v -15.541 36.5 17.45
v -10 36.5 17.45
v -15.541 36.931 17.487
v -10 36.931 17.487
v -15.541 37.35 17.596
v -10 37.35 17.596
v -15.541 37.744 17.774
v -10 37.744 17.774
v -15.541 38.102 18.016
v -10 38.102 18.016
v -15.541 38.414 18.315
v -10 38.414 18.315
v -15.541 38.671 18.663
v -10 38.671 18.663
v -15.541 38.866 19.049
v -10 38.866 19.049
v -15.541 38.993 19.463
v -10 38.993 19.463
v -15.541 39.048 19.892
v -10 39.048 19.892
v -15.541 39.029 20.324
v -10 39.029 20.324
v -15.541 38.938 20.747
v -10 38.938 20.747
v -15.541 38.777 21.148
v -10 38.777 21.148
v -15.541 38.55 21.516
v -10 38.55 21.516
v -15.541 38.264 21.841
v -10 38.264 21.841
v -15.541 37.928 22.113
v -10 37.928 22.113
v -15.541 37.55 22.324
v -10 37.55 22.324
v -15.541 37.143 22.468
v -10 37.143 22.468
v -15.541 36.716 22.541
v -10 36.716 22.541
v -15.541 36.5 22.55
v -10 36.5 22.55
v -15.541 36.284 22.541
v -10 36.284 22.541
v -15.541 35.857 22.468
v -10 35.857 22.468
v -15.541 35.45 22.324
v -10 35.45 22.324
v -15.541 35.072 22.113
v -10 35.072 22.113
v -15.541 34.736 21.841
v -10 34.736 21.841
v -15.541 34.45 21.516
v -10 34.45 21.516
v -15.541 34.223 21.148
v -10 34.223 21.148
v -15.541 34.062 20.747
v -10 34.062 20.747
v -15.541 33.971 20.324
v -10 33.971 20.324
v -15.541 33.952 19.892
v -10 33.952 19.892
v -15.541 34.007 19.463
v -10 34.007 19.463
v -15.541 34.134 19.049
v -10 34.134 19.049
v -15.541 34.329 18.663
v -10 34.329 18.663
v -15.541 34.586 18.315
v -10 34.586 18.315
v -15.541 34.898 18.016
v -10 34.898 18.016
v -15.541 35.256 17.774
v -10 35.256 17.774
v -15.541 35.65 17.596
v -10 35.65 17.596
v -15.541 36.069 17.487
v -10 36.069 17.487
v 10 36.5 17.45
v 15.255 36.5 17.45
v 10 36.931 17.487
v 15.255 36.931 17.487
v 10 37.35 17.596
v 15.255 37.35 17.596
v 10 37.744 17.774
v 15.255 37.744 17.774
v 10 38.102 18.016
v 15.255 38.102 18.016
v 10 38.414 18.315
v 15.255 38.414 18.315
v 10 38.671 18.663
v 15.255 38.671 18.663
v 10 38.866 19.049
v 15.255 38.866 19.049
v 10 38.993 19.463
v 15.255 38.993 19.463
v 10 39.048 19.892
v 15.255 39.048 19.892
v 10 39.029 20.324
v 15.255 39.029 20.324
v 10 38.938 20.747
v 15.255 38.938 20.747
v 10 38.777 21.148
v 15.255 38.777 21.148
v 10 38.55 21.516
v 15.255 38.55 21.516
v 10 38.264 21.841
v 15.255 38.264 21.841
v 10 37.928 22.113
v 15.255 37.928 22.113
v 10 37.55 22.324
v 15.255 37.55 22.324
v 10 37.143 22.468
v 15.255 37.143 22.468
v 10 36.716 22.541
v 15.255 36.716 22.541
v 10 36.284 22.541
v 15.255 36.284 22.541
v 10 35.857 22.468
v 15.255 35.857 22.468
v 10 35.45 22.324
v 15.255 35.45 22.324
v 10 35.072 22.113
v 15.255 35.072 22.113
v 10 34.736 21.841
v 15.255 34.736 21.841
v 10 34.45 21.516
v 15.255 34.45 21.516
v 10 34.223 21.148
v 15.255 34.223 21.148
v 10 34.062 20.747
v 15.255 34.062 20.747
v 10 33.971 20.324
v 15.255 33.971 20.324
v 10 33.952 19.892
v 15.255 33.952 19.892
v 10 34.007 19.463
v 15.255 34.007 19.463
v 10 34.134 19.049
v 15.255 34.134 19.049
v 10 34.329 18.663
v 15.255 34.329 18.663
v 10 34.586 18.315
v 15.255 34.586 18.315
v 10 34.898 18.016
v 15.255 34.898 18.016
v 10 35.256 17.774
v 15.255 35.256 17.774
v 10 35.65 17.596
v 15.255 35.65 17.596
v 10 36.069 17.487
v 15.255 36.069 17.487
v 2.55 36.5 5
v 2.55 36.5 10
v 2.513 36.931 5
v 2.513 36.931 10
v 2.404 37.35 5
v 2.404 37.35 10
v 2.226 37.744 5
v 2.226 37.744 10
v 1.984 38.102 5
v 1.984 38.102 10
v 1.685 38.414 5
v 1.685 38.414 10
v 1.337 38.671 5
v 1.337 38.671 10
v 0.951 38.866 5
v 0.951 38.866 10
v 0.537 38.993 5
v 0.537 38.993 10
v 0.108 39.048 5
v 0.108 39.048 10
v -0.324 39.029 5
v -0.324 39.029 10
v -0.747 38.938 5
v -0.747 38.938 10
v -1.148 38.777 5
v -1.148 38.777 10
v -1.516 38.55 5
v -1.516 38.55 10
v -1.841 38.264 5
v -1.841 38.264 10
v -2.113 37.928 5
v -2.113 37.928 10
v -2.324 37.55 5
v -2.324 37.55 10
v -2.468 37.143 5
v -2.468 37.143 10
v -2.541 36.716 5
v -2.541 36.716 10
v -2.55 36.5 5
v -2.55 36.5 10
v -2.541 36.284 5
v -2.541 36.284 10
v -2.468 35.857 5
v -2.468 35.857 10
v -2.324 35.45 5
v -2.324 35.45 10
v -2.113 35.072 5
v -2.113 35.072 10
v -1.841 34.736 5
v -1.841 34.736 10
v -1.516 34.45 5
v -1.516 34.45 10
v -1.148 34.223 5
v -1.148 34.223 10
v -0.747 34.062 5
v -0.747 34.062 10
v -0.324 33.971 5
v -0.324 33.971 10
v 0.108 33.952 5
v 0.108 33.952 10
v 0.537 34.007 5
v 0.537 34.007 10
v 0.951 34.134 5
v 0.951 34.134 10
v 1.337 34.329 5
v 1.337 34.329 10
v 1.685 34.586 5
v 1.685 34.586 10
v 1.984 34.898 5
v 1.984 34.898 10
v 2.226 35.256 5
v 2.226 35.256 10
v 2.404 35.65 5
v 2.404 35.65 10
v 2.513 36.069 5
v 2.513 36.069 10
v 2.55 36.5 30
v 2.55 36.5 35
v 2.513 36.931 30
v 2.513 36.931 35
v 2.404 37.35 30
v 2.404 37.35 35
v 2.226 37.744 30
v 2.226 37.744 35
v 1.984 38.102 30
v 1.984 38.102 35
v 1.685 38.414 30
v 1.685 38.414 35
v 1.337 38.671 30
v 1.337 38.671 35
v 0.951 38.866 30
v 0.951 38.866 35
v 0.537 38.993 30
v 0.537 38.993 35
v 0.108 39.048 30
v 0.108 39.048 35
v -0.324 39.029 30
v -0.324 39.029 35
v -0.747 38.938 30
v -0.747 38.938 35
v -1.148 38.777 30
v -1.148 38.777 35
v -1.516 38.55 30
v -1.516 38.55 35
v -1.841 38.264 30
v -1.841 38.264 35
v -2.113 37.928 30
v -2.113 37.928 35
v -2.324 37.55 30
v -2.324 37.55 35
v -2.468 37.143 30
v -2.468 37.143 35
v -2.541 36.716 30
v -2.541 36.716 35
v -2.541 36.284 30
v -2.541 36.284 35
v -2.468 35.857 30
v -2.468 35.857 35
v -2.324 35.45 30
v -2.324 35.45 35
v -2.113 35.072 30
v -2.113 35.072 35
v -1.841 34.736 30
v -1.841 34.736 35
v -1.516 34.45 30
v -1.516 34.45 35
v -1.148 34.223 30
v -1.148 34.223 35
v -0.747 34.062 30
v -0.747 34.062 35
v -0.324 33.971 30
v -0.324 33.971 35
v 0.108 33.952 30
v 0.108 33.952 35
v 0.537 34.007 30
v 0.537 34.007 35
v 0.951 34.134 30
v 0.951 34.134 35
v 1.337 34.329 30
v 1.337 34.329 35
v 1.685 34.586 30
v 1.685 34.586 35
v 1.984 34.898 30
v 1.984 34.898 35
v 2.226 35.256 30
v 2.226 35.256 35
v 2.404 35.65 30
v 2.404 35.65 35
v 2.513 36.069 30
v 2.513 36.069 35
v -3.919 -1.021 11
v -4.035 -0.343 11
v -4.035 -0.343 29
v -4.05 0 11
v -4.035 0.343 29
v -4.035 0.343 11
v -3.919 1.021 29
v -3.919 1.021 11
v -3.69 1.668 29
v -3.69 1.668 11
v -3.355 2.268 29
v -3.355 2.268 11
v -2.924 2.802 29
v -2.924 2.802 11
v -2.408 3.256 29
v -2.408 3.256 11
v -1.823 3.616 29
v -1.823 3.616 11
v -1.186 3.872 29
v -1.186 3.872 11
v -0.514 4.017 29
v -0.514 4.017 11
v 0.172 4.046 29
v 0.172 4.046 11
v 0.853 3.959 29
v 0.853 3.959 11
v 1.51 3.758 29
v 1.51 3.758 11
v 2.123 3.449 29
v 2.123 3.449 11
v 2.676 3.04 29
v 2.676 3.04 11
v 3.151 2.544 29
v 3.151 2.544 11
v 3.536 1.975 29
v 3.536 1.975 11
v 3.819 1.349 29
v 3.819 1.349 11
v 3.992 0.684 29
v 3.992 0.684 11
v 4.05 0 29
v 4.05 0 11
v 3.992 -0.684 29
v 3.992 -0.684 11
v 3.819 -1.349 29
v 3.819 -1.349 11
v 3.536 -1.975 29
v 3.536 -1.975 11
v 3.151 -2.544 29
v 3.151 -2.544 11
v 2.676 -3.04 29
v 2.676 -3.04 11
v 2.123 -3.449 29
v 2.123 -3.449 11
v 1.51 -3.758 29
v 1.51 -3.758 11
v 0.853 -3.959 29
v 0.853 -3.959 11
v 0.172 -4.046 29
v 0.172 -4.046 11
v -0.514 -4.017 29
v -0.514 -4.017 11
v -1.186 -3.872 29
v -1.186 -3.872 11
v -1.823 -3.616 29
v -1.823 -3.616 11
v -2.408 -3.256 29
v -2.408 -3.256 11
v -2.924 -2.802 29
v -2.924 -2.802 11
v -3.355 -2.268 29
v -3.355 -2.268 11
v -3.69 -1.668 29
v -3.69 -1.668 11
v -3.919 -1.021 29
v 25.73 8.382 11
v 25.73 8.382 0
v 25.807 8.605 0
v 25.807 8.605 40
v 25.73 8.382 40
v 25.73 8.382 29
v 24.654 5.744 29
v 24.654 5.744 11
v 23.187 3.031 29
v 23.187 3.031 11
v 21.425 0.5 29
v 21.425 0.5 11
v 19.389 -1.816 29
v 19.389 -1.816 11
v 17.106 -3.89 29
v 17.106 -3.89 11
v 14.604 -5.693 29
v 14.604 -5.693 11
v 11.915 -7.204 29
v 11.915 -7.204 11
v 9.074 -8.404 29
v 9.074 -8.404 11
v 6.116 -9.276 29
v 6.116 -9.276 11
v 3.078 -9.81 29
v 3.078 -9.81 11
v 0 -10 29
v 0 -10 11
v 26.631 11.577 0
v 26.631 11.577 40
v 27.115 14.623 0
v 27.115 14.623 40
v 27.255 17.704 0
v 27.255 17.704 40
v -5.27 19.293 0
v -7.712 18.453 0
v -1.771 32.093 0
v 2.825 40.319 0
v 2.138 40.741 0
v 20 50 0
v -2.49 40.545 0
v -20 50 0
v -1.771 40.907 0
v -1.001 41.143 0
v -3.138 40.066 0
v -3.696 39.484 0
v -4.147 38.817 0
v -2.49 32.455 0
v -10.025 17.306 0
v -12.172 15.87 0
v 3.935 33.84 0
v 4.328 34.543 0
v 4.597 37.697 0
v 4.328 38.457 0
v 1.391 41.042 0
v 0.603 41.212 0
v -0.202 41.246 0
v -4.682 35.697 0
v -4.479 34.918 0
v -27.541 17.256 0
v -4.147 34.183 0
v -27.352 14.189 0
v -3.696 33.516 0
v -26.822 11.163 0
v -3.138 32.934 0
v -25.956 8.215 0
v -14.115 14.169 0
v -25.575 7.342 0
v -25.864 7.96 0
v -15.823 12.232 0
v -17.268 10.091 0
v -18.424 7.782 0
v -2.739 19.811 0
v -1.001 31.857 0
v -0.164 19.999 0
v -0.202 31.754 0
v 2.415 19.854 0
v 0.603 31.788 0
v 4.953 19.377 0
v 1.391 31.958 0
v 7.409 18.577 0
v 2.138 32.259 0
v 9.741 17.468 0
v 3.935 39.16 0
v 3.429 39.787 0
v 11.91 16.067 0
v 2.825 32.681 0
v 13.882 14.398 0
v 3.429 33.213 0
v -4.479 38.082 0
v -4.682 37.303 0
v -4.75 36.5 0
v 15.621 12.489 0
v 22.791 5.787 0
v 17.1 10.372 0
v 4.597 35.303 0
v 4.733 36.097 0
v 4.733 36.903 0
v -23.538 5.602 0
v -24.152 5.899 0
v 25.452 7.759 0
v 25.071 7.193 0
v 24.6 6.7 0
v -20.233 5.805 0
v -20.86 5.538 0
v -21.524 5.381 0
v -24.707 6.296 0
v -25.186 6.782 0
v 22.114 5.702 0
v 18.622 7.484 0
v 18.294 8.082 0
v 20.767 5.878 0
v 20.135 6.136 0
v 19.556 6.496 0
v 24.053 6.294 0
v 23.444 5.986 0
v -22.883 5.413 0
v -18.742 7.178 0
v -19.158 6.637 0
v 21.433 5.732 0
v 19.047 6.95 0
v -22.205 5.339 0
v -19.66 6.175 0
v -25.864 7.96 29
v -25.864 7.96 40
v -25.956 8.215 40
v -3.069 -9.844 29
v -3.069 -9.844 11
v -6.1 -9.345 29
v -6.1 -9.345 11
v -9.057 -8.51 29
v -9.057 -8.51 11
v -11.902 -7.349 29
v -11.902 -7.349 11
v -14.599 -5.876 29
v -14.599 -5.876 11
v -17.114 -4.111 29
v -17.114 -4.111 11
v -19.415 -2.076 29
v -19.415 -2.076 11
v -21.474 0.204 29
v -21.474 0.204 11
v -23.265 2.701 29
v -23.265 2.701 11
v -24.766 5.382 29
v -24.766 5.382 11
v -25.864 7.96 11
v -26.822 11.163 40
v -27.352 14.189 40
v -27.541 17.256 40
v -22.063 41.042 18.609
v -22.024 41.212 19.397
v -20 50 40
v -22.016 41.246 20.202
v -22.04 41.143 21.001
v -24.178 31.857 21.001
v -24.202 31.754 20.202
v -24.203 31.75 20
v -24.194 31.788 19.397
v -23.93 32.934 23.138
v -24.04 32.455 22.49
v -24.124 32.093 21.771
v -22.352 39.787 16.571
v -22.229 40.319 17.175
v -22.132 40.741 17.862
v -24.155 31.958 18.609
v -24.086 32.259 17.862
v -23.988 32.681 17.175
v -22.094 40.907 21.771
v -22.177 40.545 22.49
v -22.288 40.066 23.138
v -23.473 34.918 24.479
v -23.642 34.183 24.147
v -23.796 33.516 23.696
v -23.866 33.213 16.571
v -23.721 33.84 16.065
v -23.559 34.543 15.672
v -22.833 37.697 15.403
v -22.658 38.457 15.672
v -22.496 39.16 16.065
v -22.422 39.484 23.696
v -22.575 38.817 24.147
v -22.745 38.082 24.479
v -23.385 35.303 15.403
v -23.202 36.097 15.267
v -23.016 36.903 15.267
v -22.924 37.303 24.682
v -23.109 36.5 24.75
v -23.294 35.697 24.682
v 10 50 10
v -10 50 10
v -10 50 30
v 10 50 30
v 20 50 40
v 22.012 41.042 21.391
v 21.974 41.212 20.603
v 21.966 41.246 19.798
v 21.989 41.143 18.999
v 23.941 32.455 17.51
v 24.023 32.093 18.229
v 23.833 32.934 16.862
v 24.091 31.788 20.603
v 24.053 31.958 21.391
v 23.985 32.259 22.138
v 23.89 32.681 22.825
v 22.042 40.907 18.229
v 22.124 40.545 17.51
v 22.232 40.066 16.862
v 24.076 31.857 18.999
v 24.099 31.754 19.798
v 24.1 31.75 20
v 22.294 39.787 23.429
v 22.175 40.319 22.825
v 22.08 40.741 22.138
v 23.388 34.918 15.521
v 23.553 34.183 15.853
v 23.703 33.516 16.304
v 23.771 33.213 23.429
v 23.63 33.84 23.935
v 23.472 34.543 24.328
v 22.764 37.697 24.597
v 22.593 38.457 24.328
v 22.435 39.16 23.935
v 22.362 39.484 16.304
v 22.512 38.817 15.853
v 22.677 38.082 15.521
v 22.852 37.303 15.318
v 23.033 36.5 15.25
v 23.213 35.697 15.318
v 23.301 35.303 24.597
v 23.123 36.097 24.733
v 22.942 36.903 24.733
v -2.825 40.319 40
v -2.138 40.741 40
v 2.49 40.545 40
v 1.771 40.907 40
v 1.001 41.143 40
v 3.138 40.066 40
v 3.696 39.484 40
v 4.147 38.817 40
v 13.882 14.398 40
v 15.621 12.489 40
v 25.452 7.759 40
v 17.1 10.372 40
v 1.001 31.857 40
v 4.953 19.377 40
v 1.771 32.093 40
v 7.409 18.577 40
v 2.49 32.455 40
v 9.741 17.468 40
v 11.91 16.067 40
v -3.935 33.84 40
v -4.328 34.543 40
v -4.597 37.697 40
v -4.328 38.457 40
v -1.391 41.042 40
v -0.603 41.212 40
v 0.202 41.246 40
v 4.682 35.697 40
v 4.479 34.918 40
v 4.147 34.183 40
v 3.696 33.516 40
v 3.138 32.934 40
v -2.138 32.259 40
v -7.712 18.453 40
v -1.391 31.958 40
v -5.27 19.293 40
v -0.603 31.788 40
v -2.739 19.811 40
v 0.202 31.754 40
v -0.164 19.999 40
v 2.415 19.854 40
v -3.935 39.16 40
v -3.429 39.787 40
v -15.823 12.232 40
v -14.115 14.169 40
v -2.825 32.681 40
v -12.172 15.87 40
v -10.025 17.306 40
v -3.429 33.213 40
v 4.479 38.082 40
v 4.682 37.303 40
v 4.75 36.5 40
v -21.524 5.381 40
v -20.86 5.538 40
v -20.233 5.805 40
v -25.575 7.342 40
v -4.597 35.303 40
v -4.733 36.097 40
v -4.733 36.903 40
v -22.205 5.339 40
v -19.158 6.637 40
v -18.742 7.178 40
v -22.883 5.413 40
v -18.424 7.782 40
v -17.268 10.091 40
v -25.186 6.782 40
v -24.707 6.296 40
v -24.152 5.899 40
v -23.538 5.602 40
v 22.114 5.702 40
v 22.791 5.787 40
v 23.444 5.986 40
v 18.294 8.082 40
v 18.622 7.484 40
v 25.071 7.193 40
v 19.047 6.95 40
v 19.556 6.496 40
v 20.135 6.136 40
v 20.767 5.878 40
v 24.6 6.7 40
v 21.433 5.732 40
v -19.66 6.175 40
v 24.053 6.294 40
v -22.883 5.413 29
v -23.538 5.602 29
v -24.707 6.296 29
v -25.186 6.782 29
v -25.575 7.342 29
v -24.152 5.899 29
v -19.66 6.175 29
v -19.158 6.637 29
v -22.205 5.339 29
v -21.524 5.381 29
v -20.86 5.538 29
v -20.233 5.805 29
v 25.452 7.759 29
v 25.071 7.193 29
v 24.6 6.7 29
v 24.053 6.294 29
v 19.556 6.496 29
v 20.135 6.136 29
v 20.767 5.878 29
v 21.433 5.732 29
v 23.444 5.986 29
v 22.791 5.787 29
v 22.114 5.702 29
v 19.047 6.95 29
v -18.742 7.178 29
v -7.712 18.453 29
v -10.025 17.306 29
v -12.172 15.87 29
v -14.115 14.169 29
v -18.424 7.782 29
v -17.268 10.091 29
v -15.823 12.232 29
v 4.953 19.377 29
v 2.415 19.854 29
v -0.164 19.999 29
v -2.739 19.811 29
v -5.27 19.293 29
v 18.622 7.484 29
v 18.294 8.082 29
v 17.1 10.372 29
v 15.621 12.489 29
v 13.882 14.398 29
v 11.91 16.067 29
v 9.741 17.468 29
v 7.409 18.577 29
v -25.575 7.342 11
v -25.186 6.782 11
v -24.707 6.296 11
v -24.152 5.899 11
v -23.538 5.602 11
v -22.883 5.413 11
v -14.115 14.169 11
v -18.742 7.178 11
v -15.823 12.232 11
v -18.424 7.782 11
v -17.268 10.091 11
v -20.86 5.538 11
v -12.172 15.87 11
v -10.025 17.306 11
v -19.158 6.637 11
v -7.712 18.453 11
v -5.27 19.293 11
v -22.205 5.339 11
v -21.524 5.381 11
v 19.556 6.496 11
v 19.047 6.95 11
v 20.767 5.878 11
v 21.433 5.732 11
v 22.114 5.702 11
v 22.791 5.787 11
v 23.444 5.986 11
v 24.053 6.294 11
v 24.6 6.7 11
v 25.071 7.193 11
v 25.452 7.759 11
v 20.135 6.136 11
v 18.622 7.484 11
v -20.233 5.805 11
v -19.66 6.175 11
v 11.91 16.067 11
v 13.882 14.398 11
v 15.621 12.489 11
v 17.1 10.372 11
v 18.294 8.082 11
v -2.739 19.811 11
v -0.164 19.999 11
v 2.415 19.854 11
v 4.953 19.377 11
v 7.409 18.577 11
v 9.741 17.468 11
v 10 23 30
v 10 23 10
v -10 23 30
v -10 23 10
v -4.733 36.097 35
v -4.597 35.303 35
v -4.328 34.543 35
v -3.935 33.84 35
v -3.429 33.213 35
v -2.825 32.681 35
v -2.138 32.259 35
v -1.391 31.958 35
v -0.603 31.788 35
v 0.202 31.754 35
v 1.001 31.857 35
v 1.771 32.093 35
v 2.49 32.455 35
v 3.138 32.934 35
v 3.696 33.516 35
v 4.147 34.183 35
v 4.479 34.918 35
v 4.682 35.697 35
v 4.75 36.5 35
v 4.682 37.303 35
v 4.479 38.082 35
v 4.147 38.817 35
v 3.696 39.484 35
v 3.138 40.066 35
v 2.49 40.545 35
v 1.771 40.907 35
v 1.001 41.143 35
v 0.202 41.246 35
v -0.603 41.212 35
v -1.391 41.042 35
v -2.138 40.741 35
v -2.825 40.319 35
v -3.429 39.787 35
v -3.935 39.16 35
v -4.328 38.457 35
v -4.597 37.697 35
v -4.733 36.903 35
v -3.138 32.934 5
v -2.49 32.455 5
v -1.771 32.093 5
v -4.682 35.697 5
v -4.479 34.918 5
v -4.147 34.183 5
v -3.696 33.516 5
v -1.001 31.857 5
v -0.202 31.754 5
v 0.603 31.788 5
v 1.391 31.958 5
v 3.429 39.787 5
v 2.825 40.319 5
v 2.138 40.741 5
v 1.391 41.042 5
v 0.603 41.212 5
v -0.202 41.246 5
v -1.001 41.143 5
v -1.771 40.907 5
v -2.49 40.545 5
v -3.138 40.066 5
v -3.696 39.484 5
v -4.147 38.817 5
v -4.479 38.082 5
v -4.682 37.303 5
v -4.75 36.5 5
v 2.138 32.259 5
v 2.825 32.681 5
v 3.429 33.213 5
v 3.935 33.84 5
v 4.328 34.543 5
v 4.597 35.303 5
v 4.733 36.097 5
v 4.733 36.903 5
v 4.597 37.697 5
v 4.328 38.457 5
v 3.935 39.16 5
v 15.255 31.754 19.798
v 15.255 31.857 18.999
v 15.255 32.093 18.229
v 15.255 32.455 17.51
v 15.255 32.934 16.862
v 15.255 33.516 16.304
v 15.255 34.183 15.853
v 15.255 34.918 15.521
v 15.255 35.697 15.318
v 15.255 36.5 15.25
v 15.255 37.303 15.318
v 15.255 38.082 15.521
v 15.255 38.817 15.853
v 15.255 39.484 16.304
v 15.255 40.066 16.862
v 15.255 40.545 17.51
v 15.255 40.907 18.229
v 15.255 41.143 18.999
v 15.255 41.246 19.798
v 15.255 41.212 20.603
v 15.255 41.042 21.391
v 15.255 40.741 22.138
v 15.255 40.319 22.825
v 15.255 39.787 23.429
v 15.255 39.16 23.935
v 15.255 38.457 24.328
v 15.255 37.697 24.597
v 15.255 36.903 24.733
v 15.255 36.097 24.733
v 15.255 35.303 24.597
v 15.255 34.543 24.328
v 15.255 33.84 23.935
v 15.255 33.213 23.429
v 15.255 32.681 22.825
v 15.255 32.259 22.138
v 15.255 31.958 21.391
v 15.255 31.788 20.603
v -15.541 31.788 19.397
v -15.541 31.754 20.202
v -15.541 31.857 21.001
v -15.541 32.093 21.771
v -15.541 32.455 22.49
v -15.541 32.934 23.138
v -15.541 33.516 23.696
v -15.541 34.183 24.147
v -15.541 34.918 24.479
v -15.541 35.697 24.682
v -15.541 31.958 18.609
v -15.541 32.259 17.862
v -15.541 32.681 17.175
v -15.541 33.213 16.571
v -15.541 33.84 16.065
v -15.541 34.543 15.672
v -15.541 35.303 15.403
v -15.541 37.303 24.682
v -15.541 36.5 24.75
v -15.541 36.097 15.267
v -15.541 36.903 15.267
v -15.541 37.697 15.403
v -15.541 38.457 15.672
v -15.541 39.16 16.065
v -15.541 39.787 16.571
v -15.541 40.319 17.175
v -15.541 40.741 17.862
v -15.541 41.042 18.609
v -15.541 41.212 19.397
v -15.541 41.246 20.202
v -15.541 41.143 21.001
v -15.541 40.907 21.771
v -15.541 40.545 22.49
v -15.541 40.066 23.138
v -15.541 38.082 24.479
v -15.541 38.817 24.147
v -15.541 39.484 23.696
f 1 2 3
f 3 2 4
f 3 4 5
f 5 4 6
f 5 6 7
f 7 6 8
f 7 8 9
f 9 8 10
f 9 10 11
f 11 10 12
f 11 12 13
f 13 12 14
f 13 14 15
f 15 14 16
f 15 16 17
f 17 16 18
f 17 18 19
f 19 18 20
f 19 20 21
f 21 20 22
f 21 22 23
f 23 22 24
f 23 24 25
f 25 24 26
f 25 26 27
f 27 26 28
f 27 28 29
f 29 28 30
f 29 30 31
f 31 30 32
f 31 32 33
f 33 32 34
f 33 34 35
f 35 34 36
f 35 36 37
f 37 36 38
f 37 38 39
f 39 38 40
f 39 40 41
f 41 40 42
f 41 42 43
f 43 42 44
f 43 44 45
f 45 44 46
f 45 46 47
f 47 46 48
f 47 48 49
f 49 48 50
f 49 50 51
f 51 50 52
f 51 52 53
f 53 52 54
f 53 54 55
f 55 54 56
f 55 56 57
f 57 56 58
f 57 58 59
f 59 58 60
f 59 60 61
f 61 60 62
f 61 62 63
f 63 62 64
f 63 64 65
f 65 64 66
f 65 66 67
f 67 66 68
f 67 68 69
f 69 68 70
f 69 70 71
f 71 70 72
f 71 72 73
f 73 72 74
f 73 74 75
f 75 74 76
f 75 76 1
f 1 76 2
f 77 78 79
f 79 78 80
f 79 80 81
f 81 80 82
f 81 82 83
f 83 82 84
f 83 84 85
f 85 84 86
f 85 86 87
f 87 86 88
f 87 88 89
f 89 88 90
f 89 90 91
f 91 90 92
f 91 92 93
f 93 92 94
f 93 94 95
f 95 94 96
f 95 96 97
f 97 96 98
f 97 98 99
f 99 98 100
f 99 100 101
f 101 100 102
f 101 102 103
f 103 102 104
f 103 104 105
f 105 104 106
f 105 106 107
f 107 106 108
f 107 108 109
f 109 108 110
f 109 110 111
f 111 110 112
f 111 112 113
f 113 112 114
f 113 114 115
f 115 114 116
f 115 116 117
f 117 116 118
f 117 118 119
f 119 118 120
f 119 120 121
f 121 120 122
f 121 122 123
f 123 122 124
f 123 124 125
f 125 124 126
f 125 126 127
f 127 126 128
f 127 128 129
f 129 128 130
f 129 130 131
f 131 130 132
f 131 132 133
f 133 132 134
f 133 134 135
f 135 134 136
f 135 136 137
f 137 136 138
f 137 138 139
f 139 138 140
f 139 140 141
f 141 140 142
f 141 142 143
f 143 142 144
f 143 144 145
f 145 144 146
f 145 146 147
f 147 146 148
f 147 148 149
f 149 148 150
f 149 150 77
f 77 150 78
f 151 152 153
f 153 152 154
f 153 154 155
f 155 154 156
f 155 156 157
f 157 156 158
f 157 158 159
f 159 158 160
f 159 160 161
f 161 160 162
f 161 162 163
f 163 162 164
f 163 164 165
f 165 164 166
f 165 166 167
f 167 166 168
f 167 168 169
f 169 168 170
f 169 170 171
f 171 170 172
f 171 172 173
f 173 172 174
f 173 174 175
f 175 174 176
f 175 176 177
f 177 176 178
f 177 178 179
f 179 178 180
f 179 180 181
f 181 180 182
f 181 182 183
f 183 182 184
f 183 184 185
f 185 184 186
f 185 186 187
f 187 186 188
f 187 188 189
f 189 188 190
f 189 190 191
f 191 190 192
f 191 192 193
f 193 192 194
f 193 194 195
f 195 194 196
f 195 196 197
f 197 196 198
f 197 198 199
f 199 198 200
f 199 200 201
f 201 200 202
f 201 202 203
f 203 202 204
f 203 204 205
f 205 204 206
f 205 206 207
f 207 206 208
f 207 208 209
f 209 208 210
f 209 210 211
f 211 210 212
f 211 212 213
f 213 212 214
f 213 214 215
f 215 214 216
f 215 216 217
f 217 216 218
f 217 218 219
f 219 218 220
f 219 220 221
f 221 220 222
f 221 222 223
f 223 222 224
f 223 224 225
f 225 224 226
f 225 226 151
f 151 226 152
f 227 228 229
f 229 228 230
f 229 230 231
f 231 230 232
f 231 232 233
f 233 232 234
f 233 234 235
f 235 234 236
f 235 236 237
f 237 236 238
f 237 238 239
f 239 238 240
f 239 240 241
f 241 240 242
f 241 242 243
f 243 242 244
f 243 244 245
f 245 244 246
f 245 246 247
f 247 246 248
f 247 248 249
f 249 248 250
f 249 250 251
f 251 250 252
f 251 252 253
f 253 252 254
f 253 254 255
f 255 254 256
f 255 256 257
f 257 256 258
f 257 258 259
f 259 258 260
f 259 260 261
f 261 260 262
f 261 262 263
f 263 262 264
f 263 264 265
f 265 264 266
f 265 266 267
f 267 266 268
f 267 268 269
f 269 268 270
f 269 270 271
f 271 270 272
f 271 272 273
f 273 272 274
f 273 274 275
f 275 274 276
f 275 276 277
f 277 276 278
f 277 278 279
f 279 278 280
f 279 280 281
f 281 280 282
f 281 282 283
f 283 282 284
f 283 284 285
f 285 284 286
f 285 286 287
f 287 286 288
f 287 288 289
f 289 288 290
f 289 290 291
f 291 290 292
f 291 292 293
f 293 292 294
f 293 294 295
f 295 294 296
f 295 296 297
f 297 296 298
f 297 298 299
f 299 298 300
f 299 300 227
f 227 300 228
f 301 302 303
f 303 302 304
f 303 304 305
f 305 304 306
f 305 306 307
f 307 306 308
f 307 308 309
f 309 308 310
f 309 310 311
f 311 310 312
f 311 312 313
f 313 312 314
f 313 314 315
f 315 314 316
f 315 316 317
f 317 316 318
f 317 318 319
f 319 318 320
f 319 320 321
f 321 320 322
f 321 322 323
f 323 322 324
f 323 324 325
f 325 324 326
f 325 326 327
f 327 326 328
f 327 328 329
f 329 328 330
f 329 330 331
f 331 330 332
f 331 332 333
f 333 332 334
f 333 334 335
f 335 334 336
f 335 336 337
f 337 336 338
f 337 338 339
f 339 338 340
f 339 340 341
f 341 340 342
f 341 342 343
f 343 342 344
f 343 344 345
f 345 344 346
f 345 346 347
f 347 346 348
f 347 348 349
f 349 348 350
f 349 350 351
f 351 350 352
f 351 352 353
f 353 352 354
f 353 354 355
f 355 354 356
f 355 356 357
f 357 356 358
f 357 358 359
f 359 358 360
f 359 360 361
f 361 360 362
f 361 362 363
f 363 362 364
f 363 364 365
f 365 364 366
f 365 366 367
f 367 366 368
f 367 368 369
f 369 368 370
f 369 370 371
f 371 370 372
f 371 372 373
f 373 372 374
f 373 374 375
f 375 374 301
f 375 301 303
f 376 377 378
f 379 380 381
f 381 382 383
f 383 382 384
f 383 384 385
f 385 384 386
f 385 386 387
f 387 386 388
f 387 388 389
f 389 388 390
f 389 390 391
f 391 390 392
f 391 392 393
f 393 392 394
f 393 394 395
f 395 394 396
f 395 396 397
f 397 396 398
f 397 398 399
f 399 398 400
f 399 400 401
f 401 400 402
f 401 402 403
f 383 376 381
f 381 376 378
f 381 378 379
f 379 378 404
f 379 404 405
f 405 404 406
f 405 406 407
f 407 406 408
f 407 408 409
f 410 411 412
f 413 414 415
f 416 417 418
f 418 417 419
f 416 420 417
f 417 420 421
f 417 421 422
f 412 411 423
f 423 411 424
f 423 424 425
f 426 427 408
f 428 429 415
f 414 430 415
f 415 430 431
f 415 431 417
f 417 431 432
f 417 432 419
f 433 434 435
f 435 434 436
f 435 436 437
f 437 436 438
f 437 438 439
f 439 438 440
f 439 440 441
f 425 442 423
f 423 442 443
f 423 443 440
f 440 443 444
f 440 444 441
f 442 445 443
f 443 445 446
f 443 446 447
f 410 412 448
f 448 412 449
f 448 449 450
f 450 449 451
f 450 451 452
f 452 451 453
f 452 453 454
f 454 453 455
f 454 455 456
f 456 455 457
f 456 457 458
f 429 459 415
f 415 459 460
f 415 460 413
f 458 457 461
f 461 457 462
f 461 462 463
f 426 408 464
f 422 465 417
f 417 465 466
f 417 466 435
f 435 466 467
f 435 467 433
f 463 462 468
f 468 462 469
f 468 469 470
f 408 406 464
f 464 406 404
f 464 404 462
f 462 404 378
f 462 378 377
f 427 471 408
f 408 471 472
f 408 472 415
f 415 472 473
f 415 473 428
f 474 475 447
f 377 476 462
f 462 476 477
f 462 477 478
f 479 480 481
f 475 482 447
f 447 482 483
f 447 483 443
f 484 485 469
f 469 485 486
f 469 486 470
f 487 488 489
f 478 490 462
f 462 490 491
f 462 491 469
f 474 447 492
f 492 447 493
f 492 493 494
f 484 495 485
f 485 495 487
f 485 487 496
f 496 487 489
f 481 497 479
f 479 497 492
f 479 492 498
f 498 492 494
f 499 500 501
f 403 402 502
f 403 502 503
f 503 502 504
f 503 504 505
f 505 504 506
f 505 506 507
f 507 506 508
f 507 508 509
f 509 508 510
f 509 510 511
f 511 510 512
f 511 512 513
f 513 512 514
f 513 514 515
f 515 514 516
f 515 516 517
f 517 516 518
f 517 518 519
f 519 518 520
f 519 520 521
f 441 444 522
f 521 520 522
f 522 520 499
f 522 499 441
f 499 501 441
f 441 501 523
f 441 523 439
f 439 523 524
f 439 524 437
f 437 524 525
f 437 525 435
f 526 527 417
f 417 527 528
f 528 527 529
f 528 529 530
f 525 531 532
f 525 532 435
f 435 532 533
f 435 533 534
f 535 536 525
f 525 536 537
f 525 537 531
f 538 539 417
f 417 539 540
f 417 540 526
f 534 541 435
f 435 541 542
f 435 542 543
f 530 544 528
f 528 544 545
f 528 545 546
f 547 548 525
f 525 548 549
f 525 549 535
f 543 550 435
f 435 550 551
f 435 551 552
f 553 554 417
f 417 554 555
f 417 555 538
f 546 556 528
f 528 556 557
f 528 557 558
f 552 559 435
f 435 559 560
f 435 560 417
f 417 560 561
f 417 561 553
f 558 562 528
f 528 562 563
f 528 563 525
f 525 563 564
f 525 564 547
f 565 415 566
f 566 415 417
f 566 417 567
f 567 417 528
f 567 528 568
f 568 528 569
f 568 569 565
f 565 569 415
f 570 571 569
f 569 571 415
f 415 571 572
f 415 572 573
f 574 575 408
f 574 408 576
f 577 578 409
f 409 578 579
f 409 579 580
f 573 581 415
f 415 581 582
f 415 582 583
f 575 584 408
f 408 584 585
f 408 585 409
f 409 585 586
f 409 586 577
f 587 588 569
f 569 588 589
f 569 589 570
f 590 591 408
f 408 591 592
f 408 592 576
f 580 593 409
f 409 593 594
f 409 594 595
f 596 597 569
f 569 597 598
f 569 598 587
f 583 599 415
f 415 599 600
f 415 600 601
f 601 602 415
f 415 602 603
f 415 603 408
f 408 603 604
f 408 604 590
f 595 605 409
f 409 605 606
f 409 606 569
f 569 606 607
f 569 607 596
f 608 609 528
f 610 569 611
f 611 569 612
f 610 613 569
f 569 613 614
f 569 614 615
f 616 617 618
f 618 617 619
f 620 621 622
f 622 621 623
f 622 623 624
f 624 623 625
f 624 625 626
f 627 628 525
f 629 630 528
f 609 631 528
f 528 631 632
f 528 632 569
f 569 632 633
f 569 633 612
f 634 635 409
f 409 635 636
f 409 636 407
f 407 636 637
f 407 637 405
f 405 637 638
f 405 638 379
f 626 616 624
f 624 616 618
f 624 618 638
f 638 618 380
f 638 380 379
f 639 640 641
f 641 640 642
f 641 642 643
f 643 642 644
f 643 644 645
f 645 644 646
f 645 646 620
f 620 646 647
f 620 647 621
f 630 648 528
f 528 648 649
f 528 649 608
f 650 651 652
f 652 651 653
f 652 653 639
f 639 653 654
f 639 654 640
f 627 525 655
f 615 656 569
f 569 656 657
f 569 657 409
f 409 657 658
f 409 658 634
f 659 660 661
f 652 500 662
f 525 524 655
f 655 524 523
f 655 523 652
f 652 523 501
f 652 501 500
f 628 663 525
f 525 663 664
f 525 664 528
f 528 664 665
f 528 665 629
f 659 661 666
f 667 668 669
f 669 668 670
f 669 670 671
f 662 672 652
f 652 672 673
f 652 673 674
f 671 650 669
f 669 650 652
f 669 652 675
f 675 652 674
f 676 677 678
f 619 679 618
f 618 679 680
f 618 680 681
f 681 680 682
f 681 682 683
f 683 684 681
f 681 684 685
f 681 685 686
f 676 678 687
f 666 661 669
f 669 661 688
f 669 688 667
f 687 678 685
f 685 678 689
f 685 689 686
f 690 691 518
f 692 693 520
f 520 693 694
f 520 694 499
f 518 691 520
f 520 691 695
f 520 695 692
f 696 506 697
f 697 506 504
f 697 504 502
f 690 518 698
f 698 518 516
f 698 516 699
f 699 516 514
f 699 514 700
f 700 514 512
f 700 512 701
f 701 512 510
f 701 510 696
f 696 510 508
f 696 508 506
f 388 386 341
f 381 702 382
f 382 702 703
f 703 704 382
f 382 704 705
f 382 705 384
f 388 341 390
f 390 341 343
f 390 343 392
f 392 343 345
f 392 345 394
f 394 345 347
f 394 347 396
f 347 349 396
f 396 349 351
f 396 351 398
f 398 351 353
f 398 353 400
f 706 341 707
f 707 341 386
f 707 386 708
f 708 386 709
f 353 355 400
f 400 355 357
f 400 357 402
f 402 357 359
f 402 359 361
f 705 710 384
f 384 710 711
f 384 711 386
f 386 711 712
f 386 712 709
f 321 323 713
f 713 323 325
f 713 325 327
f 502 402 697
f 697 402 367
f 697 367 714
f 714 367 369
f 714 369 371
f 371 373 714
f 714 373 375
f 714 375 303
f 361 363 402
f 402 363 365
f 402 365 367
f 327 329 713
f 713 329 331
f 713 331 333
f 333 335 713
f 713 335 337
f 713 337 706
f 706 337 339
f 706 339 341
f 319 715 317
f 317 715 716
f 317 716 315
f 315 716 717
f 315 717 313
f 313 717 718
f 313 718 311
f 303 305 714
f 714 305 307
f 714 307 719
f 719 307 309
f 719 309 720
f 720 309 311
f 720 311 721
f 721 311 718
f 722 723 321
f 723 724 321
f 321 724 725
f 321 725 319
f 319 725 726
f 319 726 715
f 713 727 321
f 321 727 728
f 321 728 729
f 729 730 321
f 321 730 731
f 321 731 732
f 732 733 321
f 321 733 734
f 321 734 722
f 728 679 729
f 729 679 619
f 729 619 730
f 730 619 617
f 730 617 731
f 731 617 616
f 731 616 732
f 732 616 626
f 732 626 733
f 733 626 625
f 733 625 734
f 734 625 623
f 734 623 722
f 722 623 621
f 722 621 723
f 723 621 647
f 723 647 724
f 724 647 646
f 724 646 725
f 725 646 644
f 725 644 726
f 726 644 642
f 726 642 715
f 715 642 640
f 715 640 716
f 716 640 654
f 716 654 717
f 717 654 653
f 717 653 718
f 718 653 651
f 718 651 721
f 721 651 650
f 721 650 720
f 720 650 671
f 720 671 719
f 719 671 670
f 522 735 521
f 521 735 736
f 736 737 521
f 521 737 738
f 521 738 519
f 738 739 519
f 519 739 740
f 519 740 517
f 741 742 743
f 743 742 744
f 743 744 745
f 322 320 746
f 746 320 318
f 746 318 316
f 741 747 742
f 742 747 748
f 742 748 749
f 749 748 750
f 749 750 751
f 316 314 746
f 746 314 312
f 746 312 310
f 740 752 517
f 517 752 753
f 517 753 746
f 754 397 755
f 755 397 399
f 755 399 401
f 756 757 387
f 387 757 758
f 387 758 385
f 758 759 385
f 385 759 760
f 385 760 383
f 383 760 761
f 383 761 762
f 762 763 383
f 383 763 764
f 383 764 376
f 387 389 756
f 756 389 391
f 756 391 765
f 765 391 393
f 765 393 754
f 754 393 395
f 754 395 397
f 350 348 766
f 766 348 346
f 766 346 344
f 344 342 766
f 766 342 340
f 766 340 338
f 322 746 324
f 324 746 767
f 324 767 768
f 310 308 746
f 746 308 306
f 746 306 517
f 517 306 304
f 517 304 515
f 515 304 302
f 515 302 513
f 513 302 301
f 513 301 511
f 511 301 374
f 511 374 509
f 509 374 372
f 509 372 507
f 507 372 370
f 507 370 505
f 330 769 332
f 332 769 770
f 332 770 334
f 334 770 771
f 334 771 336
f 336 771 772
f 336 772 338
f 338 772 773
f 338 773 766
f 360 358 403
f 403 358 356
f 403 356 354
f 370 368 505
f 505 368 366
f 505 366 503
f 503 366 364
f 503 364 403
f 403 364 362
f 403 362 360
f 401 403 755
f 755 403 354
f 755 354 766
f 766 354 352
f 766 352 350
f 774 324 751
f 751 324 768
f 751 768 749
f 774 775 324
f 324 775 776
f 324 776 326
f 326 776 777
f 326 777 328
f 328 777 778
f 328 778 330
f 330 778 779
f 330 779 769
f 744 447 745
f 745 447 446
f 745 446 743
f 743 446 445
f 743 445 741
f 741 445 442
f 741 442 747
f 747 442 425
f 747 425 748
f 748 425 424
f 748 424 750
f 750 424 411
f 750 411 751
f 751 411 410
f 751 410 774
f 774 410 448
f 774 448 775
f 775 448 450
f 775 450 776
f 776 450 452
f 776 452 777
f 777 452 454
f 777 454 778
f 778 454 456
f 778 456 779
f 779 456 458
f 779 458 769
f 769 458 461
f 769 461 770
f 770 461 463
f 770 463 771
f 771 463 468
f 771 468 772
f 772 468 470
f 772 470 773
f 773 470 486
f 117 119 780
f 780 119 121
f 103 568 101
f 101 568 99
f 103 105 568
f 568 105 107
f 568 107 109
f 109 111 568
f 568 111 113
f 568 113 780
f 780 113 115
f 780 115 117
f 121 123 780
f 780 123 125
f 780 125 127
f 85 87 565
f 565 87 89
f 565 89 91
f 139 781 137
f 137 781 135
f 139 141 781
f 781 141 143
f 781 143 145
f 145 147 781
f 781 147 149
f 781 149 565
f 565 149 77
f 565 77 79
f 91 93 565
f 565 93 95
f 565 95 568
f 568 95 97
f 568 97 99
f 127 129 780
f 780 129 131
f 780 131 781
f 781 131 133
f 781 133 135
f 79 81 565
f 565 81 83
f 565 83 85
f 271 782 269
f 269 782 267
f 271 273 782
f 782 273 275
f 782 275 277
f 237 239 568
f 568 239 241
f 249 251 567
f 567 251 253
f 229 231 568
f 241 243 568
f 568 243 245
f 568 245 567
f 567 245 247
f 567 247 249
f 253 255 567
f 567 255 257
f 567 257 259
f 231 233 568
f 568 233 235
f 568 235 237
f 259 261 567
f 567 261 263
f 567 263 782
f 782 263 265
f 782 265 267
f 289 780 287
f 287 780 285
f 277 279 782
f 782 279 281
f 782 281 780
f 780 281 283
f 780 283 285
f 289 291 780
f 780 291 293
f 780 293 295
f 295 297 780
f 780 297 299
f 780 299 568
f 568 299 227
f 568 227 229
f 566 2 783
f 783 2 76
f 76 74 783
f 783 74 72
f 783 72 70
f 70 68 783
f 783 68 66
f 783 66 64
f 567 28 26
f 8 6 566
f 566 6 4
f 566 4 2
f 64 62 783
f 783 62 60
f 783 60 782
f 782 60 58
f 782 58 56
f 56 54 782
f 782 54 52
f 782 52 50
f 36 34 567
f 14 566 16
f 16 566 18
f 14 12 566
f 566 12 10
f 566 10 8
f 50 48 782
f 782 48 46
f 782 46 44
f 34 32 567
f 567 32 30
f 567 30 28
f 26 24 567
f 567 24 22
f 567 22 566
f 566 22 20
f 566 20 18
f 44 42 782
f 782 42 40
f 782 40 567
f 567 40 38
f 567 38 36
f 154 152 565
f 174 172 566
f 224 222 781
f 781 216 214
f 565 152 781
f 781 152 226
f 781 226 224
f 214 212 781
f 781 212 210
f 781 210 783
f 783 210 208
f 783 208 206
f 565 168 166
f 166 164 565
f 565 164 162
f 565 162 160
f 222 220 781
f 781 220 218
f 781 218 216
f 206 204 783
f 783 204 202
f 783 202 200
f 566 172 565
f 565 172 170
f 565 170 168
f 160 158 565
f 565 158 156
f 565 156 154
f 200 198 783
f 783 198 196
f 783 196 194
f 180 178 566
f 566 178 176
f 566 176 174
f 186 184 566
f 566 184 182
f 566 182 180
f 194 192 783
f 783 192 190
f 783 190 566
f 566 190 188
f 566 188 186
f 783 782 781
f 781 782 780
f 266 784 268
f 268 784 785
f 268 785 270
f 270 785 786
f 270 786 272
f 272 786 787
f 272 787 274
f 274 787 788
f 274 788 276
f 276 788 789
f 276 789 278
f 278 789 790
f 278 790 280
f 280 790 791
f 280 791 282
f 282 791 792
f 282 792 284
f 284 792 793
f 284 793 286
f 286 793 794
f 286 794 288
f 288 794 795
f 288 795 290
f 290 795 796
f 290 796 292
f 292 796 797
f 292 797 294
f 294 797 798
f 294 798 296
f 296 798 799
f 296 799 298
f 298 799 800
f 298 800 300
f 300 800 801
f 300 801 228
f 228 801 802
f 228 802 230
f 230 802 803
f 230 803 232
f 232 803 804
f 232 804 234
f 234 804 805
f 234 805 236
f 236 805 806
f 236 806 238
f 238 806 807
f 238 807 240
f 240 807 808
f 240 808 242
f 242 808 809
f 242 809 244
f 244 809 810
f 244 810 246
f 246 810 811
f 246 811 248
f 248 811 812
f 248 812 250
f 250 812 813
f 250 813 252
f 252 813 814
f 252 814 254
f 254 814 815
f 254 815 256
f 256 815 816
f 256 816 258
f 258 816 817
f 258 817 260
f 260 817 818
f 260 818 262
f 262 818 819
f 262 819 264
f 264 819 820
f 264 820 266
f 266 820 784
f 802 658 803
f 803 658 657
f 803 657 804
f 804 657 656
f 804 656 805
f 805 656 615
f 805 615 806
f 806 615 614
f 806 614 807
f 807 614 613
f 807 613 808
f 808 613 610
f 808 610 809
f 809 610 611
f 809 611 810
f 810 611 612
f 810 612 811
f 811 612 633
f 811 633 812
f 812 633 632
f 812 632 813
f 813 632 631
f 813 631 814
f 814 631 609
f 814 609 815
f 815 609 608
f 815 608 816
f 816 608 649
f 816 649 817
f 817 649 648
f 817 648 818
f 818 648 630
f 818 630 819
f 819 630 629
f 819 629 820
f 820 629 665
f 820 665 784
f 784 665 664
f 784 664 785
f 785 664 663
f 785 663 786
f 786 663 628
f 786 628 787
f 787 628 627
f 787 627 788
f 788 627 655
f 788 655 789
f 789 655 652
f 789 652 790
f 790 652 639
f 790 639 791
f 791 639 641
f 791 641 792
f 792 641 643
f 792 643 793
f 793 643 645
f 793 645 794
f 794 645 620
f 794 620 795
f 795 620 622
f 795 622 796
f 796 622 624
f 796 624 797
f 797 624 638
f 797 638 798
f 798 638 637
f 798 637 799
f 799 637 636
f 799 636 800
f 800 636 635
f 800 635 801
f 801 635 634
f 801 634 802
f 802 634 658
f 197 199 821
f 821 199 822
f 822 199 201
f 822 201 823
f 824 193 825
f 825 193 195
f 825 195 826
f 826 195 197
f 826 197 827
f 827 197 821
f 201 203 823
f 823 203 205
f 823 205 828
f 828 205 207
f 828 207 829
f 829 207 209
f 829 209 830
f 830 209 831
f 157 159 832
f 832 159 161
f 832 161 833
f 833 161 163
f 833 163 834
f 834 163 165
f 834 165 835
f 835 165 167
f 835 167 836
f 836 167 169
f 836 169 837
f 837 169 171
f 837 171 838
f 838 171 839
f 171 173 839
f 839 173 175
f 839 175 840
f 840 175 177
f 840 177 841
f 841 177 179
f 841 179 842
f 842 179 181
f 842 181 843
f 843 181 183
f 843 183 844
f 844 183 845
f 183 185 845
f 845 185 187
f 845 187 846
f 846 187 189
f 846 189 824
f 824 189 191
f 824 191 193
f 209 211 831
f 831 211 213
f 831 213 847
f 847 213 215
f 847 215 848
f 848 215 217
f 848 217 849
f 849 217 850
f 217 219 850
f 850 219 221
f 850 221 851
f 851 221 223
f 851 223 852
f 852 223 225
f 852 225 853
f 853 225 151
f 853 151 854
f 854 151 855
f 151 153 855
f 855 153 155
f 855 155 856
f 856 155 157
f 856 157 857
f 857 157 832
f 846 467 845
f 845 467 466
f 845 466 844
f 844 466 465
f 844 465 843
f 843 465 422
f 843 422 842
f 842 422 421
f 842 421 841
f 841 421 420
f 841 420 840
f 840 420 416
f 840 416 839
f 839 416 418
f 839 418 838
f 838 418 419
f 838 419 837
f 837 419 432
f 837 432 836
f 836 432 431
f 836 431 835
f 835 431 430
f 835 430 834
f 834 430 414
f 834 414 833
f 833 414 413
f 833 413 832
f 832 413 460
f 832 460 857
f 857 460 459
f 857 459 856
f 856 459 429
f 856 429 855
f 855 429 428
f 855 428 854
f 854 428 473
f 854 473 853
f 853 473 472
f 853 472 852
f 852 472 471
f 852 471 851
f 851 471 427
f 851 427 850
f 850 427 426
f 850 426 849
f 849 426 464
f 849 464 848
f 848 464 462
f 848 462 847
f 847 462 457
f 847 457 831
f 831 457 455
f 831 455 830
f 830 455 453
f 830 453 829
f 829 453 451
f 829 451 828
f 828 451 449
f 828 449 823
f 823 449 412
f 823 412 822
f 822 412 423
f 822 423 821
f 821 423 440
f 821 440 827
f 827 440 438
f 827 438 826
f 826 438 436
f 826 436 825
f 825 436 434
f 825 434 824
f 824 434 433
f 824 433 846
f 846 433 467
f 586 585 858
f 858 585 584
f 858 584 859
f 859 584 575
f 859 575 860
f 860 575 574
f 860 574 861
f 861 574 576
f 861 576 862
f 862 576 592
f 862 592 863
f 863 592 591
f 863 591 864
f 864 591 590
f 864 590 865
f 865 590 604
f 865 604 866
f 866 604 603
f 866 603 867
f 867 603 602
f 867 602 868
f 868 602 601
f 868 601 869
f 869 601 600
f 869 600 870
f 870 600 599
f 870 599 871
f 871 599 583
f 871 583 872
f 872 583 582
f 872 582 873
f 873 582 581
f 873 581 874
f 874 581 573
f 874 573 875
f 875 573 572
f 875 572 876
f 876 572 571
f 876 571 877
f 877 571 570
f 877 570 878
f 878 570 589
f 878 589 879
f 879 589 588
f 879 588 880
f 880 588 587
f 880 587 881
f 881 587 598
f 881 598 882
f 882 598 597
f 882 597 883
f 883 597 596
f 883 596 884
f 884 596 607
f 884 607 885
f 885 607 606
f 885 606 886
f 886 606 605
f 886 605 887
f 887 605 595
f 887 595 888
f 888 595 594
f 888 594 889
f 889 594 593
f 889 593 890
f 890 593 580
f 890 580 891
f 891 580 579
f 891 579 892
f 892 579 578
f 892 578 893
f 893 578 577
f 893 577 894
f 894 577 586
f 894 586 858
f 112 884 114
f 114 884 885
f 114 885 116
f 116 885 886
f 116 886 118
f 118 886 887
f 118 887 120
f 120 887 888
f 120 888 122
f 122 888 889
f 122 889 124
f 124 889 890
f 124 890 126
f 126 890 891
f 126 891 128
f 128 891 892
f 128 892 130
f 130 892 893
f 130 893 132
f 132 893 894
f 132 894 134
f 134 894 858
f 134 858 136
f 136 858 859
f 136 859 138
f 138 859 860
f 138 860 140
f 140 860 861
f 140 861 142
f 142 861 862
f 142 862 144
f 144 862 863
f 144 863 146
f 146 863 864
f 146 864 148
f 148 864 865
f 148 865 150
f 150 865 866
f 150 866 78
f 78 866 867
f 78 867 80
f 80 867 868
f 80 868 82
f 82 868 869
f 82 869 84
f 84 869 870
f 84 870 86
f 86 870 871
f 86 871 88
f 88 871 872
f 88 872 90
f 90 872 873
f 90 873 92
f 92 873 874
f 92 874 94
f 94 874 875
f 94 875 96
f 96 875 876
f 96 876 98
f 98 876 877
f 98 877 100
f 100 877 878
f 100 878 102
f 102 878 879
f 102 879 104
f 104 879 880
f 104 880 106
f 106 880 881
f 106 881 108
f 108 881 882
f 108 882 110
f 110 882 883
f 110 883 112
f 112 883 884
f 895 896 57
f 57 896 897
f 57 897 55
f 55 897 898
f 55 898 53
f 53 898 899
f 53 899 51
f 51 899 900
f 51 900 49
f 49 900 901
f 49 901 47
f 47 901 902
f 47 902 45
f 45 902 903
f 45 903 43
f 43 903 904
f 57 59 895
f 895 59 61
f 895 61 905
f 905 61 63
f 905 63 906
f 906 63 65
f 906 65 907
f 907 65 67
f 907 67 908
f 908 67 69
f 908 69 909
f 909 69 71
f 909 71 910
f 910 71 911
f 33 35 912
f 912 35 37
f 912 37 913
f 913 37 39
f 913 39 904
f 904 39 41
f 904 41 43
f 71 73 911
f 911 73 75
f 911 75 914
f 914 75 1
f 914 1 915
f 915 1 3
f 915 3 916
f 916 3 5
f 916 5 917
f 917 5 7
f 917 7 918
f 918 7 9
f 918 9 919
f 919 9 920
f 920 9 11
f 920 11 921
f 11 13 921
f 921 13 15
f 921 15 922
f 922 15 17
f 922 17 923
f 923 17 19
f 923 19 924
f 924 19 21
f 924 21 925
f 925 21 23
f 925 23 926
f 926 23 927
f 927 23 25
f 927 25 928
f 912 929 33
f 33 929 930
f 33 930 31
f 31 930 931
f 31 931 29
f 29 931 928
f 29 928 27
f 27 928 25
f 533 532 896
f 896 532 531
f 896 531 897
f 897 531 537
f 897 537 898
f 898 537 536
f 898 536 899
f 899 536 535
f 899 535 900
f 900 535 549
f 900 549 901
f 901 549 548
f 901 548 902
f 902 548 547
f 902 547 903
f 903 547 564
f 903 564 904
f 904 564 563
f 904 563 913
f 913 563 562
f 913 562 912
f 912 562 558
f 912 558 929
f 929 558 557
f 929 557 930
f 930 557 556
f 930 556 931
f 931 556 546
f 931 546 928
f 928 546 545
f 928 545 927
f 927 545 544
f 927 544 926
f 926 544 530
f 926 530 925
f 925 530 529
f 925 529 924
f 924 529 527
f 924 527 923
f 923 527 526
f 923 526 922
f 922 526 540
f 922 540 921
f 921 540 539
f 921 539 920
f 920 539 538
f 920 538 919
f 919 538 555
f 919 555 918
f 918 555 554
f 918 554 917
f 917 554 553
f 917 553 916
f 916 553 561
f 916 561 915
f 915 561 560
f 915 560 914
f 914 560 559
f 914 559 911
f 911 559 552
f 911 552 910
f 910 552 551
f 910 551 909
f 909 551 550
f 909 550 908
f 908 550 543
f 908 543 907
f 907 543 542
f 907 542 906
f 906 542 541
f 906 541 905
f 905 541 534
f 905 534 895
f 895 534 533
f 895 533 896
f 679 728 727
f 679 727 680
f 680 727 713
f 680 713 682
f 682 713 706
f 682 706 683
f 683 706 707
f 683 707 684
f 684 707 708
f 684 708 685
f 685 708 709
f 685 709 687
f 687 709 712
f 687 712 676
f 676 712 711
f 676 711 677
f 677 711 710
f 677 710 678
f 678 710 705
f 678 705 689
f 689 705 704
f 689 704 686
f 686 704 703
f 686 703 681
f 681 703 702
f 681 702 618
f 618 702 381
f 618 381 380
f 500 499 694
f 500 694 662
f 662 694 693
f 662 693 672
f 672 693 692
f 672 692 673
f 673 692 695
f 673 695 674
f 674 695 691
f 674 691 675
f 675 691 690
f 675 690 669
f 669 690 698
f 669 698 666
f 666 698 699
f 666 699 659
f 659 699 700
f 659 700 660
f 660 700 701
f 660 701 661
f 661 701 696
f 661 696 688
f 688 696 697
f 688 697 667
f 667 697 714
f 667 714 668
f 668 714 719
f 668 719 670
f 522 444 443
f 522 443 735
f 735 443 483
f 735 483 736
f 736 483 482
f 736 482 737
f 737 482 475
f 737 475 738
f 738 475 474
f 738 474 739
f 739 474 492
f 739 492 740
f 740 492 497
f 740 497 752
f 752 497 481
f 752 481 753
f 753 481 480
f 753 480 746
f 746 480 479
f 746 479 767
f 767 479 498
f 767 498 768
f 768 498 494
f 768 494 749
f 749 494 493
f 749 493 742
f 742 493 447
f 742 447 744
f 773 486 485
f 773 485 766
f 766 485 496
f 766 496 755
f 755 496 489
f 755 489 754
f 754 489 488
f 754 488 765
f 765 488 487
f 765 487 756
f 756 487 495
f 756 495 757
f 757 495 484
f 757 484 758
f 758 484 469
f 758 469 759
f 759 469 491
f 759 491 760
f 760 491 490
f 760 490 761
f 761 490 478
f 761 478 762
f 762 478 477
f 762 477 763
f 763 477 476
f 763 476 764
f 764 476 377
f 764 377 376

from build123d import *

# Parameters (mm, degrees)
SALIENTE_EXTRUIR1_DEPTH = 40
CROQUIS2_R              = 4.05
CORTAR_EXTRUIR1_DEPTH   = 40
CROQUIS3_R              = 20
CORTAR_EXTRUIR10_DEPTH  = 11
CORTAR_EXTRUIR11_START  = -11
CROQUIS4_R              = 20
CORTAR_EXTRUIR11_DEPTH  = 11
CROQUIS5_W              = 20
CROQUIS5_H              = 20
CORTAR_EXTRUIR12_DEPTH  = 27
CROQUIS6_R              = 2.55
CORTAR_EXTRUIR13_DEPTH  = 47
CROQUIS7_R              = 4.75
CORTAR_EXTRUIR14_DEPTH  = 5
CORTAR_EXTRUIR15_START  = -5
CROQUIS8_R              = 4.75
CORTAR_EXTRUIR15_DEPTH  = 5
CROQUIS10_R             = 2.55
CORTAR_EXTRUIR16_DEPTH  = 61
CROQUIS11_R             = 4.75
CORTAR_EXTRUIR17_DEPTH  = 12
CORTAR_EXTRUIR18_START  = -12
CROQUIS12_R             = 4.75
CORTAR_EXTRUIR18_DEPTH  = 12
REDONDEO2_R             = 4


with BuildPart() as part:
    # Croquis1 → Saliente-Extruir1 (new body)
    with BuildSketch(Plane.XY):
        with BuildLine():
            Line((-20, 50), (20, 50))
            Line((20, 50), (27.254710371, 17.703975897))
            ThreePointArc((27.254710371, 17.703975897), (19.389172744, -1.816392263), (0, -10))
            ThreePointArc((0, -10), (-19.415198008, -2.076028365), (-27.5407221, 17.255683881))
            Line((-27.5407221, 17.255683881), (-20, 50))
        make_face()
    extrude(amount=SALIENTE_EXTRUIR1_DEPTH)

    # Croquis2 → Cortar-Extruir1 (cut)
    with BuildSketch(Plane.XY.offset(40)):
        Circle(CROQUIS2_R)
    extrude(amount=-CORTAR_EXTRUIR1_DEPTH, mode=Mode.SUBTRACT)

    # Croquis3 → Cortar-Extruir10 (cut)
    with BuildSketch(Plane.XY.offset(40)):
        Circle(CROQUIS3_R)
    extrude(amount=-CORTAR_EXTRUIR10_DEPTH, mode=Mode.SUBTRACT)

    # Croquis4 → Cortar-Extruir11 (cut)
    with BuildSketch(Plane(origin=(0, 0, 0), x_dir=(-1, 0, 0), z_dir=(0, 0, -1)).offset(CORTAR_EXTRUIR11_START)):
        Circle(CROQUIS4_R)
    extrude(amount=CORTAR_EXTRUIR11_DEPTH, mode=Mode.SUBTRACT)

    # Croquis5 → Cortar-Extruir12 (cut)
    with BuildSketch(Plane(origin=(0, 50, 0), x_dir=(1, 0, 0), z_dir=(0, 1, 0))):
        with Locations((0, -20)):
            Rectangle(CROQUIS5_W, CROQUIS5_H)
    extrude(amount=-CORTAR_EXTRUIR12_DEPTH, mode=Mode.SUBTRACT)

    # Croquis6 → Cortar-Extruir13 (cut)
    with BuildSketch(Plane.XY.offset(40)):
        with Locations((0, 36.5)):
            Circle(CROQUIS6_R)
    extrude(amount=-CORTAR_EXTRUIR13_DEPTH, mode=Mode.SUBTRACT)

    # Croquis7 → Cortar-Extruir14 (cut)
    with BuildSketch(Plane.XY.offset(40)):
        with Locations((0, 36.5)):
            Circle(CROQUIS7_R)
    extrude(amount=-CORTAR_EXTRUIR14_DEPTH, mode=Mode.SUBTRACT)

    # Croquis8 → Cortar-Extruir15 (cut)
    with BuildSketch(Plane(origin=(0, 0, 0), x_dir=(-1, 0, 0), z_dir=(0, 0, -1)).offset(CORTAR_EXTRUIR15_START)):
        with Locations(Location((0, 36.5, 0), (0, 0, 180))):
            Circle(CROQUIS8_R)
    extrude(amount=CORTAR_EXTRUIR15_DEPTH, mode=Mode.SUBTRACT)

    # Croquis10 → Cortar-Extruir16 (cut)
    with BuildSketch(Plane(origin=(27.254710371, 0, 0), x_dir=(0, 0, -1), z_dir=(1, 0, 0))):
        with Locations(Location((-20, 36.5, 0), (0, 0, 90))):
            Circle(CROQUIS10_R)
    extrude(amount=-CORTAR_EXTRUIR16_DEPTH, mode=Mode.SUBTRACT)

    # Croquis11 → Cortar-Extruir17 (cut)
    with BuildSketch(Plane(origin=(27.254710371, 0, 0), x_dir=(0, 0, -1), z_dir=(1, 0, 0))):
        with Locations((-20, 36.5)):
            Circle(CROQUIS11_R)
    extrude(amount=-CORTAR_EXTRUIR17_DEPTH, mode=Mode.SUBTRACT)

    # Croquis12 → Cortar-Extruir18 (cut)
    with BuildSketch(Plane.ZY.offset(27.5407221).offset(CORTAR_EXTRUIR18_START)):
        with Locations(Location((20, 36.5, 0), (0, 0, 180))):
            Circle(CROQUIS12_R)
    extrude(amount=CORTAR_EXTRUIR18_DEPTH, mode=Mode.SUBTRACT)

    # Redondeo2
    redondeo2_edges = [part.edges().sort_by_distance(p)[0] for p in [
        (19.96305599, -1.215070179, 34.5),
        (-19.940485513, -1.541764408, 34.5),
        (-19.940485513, -1.541764408, 5.5),
        (19.96305599, -1.215070179, 5.5),
    ]]
    fillet(redondeo2_edges, radius=REDONDEO2_R)


solid = part.part
